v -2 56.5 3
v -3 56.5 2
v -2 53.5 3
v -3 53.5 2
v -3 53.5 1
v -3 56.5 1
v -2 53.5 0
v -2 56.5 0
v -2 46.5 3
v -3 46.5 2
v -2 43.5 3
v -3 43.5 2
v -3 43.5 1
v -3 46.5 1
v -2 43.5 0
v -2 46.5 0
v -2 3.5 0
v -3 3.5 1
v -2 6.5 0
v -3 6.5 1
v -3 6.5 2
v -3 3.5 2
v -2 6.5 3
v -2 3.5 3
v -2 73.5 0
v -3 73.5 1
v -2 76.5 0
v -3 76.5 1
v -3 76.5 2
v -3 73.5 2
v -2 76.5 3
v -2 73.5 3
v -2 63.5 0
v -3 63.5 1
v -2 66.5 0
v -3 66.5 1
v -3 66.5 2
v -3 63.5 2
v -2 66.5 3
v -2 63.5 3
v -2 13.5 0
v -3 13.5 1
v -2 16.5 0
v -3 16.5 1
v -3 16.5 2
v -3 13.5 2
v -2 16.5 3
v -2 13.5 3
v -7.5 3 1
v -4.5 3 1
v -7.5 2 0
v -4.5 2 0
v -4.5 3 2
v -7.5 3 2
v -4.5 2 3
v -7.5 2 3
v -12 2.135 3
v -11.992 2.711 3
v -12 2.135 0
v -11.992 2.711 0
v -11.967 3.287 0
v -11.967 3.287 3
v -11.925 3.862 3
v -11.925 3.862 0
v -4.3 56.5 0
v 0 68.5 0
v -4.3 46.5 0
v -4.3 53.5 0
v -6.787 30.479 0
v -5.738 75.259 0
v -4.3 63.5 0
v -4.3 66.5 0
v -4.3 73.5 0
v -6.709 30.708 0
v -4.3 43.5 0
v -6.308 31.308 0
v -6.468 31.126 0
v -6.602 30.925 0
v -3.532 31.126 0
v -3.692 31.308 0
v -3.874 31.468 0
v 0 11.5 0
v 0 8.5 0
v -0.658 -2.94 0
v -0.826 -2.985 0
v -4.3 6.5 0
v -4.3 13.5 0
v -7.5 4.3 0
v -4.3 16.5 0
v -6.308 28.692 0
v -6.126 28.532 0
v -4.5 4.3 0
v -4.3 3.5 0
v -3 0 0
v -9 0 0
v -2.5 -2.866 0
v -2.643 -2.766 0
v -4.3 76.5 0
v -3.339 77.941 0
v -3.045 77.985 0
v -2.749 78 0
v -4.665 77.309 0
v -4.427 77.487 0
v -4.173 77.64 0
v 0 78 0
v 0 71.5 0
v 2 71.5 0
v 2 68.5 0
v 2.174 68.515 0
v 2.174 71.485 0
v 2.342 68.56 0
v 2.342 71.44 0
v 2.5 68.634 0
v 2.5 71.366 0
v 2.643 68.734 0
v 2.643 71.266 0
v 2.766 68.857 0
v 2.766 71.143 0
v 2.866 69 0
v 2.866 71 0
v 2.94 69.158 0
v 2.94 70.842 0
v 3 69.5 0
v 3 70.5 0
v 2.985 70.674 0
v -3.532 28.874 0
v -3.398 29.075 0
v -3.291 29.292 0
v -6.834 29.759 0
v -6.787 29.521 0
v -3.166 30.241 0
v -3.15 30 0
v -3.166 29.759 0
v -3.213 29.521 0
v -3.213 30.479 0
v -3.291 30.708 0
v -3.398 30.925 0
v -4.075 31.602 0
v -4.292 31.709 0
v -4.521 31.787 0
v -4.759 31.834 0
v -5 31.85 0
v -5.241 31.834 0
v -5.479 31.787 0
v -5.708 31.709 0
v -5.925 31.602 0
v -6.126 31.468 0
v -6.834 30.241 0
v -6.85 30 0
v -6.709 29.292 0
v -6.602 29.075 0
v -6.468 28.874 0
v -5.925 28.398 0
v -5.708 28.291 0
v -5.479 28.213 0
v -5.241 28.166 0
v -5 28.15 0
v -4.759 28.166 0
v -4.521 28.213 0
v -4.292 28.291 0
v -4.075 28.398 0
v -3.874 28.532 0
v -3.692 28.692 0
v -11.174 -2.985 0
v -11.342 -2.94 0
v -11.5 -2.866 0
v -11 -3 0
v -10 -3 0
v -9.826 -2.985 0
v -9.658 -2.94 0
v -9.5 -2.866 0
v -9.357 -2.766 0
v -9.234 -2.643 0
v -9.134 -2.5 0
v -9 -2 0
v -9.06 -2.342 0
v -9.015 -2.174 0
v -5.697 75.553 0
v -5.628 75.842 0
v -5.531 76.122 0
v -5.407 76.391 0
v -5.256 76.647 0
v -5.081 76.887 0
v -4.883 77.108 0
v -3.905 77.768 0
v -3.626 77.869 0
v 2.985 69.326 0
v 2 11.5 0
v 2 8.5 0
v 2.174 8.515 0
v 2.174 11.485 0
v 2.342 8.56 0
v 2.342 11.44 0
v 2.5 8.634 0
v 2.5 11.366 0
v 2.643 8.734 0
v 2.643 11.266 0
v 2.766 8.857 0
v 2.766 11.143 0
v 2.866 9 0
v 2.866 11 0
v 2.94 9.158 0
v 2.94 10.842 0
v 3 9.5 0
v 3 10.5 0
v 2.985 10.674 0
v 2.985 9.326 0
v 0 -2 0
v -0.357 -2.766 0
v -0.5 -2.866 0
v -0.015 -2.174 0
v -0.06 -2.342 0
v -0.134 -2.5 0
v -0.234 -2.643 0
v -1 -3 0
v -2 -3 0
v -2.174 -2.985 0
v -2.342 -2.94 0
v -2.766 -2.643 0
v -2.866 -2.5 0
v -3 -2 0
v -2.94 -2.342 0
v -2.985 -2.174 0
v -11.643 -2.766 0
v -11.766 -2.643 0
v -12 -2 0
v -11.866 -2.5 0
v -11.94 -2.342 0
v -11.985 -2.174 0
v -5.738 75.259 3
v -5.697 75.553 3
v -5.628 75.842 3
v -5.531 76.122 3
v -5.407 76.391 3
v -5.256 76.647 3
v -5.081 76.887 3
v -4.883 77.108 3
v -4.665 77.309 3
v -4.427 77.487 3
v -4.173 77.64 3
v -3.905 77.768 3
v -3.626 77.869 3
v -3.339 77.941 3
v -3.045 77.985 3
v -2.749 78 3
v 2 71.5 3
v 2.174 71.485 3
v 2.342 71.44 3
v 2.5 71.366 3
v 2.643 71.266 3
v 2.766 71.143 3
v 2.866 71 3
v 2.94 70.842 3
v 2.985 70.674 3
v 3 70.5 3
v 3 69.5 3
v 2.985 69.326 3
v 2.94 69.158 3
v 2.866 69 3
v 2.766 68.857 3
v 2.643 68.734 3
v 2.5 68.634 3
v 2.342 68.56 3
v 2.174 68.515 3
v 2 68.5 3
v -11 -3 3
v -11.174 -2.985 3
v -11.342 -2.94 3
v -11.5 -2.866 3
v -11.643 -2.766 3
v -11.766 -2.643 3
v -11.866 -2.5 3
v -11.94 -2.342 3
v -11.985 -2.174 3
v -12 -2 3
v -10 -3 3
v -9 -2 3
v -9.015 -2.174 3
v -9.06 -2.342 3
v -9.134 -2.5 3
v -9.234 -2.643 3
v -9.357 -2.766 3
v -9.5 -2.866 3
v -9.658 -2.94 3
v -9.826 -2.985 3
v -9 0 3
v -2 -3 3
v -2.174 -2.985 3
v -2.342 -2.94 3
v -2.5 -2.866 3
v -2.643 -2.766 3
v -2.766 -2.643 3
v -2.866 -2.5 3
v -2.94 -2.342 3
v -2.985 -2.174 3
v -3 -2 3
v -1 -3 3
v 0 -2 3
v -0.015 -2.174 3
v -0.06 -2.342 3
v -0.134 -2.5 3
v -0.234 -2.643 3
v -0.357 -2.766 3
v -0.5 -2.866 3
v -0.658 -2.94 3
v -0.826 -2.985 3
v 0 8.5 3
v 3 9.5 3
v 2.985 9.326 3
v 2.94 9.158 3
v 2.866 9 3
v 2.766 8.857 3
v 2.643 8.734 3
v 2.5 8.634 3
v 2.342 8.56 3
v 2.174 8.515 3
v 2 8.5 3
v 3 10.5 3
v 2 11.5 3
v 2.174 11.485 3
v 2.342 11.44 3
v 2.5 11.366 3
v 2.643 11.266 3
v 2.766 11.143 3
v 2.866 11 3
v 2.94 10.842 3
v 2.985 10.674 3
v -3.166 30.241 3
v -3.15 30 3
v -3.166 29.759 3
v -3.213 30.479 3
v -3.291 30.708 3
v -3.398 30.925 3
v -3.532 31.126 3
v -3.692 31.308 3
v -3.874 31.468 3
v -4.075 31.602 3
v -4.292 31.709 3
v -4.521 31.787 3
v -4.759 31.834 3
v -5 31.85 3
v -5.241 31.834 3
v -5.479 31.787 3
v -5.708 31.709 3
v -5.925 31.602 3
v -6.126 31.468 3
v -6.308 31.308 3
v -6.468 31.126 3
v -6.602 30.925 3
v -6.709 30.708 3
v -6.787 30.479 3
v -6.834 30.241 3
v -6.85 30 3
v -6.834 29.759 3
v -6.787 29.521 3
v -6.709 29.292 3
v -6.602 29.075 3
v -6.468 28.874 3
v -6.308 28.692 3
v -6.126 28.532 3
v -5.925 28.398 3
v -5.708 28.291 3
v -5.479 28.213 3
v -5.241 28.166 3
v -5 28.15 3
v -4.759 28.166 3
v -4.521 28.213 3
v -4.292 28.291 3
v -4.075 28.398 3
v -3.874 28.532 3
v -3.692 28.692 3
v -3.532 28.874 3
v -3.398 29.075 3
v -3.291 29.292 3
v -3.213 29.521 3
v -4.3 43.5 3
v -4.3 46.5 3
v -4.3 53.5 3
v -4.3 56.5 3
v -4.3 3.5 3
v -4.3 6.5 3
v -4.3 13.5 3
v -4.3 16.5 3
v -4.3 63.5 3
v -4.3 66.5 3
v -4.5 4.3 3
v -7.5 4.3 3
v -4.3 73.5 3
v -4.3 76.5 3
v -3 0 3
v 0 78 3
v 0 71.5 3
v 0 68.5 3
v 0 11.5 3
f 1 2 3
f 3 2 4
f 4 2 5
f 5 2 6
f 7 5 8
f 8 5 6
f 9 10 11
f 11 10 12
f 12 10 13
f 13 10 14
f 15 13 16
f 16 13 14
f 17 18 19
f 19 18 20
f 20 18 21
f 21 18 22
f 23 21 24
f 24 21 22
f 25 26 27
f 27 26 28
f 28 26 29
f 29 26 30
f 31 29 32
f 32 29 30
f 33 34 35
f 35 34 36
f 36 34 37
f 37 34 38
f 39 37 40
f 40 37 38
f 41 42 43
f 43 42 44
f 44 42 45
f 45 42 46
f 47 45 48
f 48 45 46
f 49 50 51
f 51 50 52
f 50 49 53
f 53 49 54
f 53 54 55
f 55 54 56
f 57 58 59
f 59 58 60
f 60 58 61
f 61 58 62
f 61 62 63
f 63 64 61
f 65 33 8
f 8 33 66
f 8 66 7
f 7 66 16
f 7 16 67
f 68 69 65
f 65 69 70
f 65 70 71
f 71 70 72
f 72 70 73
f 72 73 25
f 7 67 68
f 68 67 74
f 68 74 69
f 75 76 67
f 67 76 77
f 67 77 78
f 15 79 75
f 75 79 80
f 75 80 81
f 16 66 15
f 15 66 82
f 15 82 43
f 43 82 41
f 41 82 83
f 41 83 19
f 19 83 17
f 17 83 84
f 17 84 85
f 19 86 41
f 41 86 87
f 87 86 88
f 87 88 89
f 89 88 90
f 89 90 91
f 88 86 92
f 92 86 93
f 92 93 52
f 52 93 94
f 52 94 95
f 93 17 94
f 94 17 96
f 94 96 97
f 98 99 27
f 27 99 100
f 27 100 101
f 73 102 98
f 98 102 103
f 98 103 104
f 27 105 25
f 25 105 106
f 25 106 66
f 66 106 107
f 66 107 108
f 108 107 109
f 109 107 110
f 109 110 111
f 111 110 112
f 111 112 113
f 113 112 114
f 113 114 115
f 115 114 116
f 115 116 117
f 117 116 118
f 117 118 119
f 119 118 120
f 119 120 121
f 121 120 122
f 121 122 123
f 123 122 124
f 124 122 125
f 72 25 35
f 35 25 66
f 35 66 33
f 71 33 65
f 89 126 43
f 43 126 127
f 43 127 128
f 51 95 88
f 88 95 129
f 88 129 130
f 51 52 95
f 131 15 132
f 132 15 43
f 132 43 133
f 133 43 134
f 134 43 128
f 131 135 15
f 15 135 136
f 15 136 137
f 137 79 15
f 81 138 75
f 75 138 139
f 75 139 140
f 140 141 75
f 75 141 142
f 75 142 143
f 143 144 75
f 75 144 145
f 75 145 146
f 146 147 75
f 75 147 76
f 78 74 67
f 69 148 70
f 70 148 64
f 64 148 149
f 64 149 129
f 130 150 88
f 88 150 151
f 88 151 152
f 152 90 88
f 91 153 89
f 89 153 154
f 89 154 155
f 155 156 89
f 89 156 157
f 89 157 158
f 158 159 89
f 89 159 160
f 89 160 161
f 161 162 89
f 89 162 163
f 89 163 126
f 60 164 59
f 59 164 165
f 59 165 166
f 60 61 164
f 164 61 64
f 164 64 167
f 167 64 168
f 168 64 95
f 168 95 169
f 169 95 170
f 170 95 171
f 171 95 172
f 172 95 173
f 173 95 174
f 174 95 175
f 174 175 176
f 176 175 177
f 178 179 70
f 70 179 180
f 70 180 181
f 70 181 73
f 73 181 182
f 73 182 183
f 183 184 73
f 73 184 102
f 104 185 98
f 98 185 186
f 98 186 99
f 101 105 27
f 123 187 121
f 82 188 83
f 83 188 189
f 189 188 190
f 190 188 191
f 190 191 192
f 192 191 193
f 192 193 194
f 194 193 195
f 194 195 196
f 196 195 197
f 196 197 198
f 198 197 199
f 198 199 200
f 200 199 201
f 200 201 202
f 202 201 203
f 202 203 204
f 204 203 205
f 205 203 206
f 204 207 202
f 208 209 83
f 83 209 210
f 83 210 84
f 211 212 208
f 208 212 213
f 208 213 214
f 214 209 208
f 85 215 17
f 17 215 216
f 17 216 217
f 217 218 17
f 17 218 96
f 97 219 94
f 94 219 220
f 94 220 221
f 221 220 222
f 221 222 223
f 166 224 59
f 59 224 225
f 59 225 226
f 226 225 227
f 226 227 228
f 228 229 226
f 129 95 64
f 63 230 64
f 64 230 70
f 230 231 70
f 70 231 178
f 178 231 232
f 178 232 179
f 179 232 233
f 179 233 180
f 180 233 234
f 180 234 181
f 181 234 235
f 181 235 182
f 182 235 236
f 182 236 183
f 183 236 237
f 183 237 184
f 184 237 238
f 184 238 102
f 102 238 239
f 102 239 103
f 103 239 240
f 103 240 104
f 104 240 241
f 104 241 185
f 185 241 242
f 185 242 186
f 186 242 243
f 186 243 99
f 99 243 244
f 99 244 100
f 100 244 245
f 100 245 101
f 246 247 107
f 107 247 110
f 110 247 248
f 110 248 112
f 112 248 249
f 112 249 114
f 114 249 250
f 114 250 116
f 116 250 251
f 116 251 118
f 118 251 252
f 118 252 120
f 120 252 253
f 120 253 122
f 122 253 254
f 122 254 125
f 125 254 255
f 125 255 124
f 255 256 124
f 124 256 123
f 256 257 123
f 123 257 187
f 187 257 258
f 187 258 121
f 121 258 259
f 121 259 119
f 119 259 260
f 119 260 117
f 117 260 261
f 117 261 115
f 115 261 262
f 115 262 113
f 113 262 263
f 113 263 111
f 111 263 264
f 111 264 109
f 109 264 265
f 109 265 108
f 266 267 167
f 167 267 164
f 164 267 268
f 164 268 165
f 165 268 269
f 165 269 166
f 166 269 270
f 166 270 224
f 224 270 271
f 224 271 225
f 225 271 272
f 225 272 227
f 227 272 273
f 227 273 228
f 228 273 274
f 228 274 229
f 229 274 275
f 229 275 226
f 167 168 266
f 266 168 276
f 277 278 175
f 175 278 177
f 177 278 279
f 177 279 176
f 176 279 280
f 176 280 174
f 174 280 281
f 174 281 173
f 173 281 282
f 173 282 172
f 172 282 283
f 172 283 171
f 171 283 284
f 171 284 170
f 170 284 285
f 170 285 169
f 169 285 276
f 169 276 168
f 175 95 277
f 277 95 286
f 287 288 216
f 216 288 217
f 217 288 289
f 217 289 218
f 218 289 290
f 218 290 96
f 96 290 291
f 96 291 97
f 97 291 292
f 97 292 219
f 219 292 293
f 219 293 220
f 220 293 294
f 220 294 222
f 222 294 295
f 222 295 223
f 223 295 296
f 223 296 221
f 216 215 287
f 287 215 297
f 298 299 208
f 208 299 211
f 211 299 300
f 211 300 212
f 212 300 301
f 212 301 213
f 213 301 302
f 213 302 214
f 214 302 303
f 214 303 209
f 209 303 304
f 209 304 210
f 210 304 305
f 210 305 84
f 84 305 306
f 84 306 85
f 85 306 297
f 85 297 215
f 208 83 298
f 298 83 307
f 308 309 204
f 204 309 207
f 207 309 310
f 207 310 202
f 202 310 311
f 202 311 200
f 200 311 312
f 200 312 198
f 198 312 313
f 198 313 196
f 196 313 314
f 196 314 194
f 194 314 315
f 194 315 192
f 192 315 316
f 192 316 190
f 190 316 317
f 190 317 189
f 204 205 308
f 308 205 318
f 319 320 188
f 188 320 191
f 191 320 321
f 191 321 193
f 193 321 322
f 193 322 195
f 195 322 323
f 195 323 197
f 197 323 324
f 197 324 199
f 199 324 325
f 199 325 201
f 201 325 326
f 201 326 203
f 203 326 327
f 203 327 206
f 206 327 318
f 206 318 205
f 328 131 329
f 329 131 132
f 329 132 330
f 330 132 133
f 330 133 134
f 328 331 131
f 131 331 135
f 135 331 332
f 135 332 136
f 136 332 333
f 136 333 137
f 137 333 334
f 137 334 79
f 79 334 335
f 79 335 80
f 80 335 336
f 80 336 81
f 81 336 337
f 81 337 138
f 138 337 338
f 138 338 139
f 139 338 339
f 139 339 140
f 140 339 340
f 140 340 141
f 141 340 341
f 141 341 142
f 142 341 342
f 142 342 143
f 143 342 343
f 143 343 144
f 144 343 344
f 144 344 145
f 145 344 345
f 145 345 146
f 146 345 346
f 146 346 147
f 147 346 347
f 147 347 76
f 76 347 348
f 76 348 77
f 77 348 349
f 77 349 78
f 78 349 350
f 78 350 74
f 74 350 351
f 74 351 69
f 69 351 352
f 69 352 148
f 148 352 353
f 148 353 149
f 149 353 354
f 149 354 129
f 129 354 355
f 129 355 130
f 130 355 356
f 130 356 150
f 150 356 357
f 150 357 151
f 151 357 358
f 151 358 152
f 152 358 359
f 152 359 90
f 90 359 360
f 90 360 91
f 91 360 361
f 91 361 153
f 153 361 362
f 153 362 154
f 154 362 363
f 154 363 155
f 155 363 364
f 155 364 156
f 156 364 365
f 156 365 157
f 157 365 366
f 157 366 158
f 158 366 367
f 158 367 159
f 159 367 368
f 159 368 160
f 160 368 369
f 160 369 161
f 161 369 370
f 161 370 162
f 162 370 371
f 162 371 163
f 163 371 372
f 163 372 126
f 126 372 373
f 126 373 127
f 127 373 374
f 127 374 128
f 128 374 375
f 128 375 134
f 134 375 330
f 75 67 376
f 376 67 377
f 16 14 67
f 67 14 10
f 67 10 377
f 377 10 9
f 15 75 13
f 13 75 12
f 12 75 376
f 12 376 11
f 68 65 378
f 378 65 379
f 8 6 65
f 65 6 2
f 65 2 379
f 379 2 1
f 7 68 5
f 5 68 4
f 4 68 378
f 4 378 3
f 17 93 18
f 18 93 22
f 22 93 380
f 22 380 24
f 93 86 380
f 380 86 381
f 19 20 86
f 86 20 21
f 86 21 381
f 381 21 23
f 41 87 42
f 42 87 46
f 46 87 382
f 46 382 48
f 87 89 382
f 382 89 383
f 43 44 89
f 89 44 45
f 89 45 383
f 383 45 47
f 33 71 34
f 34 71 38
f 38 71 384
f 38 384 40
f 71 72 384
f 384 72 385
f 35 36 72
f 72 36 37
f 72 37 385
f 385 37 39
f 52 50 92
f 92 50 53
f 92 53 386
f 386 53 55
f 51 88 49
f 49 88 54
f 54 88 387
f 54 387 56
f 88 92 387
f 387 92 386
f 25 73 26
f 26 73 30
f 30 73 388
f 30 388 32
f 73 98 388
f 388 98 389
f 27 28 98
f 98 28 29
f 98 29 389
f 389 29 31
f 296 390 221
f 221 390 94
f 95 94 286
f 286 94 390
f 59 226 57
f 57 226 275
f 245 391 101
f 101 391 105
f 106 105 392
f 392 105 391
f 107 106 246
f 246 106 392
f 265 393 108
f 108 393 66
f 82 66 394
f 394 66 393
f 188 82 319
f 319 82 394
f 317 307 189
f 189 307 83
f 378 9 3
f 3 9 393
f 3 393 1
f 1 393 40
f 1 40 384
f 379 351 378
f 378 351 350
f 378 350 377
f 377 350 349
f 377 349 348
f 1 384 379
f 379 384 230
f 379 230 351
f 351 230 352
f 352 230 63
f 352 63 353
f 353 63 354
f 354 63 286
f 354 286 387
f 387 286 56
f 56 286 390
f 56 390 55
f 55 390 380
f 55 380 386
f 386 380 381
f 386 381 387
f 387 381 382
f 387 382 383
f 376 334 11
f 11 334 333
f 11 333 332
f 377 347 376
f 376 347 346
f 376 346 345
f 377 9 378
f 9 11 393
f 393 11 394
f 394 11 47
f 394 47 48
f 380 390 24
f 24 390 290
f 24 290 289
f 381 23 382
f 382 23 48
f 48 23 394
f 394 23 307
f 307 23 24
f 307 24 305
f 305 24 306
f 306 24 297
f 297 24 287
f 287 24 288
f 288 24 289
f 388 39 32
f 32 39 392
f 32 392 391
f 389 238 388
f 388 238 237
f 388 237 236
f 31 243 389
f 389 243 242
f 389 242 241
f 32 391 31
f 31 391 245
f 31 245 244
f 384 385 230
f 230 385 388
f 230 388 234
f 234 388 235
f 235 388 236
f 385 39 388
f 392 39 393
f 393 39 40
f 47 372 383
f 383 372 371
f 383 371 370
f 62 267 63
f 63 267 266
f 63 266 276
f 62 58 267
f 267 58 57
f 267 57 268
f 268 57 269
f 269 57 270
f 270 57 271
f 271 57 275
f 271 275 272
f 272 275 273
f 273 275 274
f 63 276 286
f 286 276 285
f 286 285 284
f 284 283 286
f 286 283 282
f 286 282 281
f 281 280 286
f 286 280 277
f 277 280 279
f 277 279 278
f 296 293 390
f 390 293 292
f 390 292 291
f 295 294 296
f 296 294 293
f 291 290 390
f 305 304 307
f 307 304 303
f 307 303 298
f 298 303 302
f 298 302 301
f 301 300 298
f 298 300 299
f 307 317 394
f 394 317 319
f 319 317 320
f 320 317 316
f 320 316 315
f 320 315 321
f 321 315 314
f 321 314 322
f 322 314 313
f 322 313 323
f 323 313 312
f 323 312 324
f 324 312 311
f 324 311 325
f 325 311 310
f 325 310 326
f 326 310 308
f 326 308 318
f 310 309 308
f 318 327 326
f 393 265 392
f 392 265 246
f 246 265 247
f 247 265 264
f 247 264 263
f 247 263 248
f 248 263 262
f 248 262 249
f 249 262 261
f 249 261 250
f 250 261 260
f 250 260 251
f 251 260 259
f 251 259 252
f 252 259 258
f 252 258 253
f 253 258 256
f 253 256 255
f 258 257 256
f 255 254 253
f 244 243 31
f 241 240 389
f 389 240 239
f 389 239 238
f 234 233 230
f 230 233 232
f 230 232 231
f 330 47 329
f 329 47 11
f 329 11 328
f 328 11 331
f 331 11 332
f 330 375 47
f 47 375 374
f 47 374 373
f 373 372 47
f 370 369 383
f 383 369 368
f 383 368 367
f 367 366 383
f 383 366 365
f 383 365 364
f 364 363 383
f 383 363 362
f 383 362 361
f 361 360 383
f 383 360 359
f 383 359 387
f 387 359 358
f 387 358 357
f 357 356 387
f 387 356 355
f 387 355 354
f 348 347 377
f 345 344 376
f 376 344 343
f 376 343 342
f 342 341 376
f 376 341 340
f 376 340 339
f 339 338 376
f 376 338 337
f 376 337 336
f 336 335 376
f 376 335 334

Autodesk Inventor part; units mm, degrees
ref_plane "YZ Plane" through (0, 0, 0) normal (1, 0, 0) x (0, 1, 0)
ref_plane "XZ Plane" through (0, 0, 0) normal (0, 1, 0) x (-1, 0, 0)
ref_plane "XY Plane" through (0, 0, 0) normal (0, 0, 1) x (1, 0, 0)
sketch "Sketch1" plane through (0, 0, 0) normal (0, 0, 1) x (1, 0, 0)
  line L0 (0, 0) -> (0, 8.5)
  line L1 (0, 8.5) -> (3, 8.5)
  line L2 (3, 8.5) -> (3, 11.5)
  line L3 (3, 11.5) -> (0, 11.5)
  line L4 (0, 11.5) -> (0, 68.5)
  line L5 (0, 68.5) -> (3, 68.5)
  line L6 (3, 68.5) -> (3, 71.5)
  line L7 (3, 71.5) -> (0, 71.5)
  line L8 (0, 71.5) -> (0, 78)
  line L9 (-12, 0) -> (-12, -3)
  line L10 (-12, -3) -> (-9, -3)
  line L11 (-9, -3) -> (-9, 0)
  line L12 (-9, 0) -> (-3, 0)
  line L13 (-3, 0) -> (-3, -3)
  line L14 (-3, -3) -> (0, -3)
  line L15 (0, -3) -> (0, 0)
  line L16 (0, 78) -> (-5.5, 78)
  line L17 (-12, 0) -> (-12, 3)
  line L18 (-12, 3) -> (-5.5, 78)
  line L19 (-15, 0) -> (6, 0) construction
  line L20 (3, 10) -> (0, 10) construction
  line L21 (3, 70) -> (0, 70) construction
  line L22 (-4.3, 76.5) -> (-3, 76.5)
  line L23 (-3, 76.5) -> (-3, 73.5)
  line L24 (-3, 73.5) -> (-4.3, 73.5)
  line L25 (-4.3, 73.5) -> (-4.3, 76.5)
  line L26 (-4.3, 75) -> (-3, 75) construction
  line L27 (-7.5, 4.3) -> (-4.5, 4.3)
  line L28 (-4.5, 4.3) -> (-4.5, 3)
  line L29 (-4.5, 3) -> (-7.5, 3)
  line L30 (-7.5, 3) -> (-7.5, 4.3)
  line L31 (-6, 3) -> (-6, 0) construction
  line L32 (-4.3, 66.5) -> (-3, 66.5)
  line L33 (-3, 66.5) -> (-3, 63.5)
  line L34 (-3, 63.5) -> (-4.3, 63.5)
  line L35 (-4.3, 63.5) -> (-4.3, 66.5)
  line L36 (-4.3, 65) -> (-3, 65) construction
  line L37 (-4.3, 16.5) -> (-3, 16.5)
  line L38 (-3, 16.5) -> (-3, 13.5)
  line L39 (-3, 13.5) -> (-4.3, 13.5)
  line L40 (-4.3, 13.5) -> (-4.3, 16.5)
  line L41 (-4.3, 15) -> (-3, 15) construction
  line L42 (-3, 6.5) -> (-4.3, 6.5)
  line L43 (-4.3, 5) -> (-3, 5) construction
  line L44 (-3, 3.5) -> (-3, 6.5)
  line L45 (-4.3, 3.5) -> (-3, 3.5)
  line L46 (-4.3, 6.5) -> (-4.3, 3.5)
  line L47 (0, 50) -> (-3, 50) construction
  line L48 (-4.3, 53.5) -> (-3, 53.5)
  line L49 (-3, 53.5) -> (-3, 56.5)
  line L50 (-3, 56.5) -> (-4.3, 56.5)
  line L51 (-4.3, 56.5) -> (-4.3, 53.5)
  line L52 (-4.3, 55) -> (-3, 55) construction
  line L53 (-4.3, 46.5) -> (-3, 46.5)
  line L54 (-3, 46.5) -> (-3, 43.5)
  line L55 (-3, 43.5) -> (-4.3, 43.5)
  line L56 (-4.3, 43.5) -> (-4.3, 46.5)
  line L57 (-4.3, 45) -> (-3, 45) construction
  circle A0 centre (-5, 30) radius 1.85
  dimension "d0" = 3
  dimension "d1" = 12
  dimension "d2" = 3
  dimension "d3" = 10
  dimension "d4" = 60
  dimension "d5" = 5.5
  dimension "d6" = 3
  dimension "d7" = 1.3
  dimension "d8" = 3
  dimension "d9" = 5
  dimension "d10" = 3
  dimension "d11" = 1.3
  dimension "d12" = 3
  dimension "d13" = 3
  dimension "d14" = 3
  dimension "d15" = 1.3
  dimension "d16" = 5
  dimension "d17" = 3
  dimension "d18" = 1.3
  dimension "d19" = 5
  dimension "d29" = 5
  dimension "d30" = 50
  dimension "d31" = 3.7
  dimension "d32" = 5
  dimension "d33" = 30
extrude "Extrusion1" add sketch "Sketch1" along normal blind 3
fillet "Fillet1" radius 1 8 edges at (3, 11.5, 1.5) (3, 8.5, 1.5) (0, -3, 1.5) (-3, -3, 1.5) (-9, -3, 1.5) (-12, -3, 1.5) (3, 68.5, 1.5) (3, 71.5, 1.5)
fillet "Fillet2" radius 3 1 edges at (-5.5, 78, 1.5)
fillet "Fillet2" radius 20 1 edges at (-12, 3, 1.5)
chamfer "Chamfer1" distance 1 angle 45 14 edges at (-6, 3, 3) (-6, 3, 0) (-3, 15, 3) (-3, 15, 0) (-3, 65, 3) (-3, 65, 0) (-3, 75, 3) (-3, 75, 0) (-3, 5, 3) (-3, 5, 0) (-3, 45, 0) (-3, 45, 3) (-3, 55, 0) (-3, 55, 3)
properties part number "turtlebot_installation_fin_bottom"
